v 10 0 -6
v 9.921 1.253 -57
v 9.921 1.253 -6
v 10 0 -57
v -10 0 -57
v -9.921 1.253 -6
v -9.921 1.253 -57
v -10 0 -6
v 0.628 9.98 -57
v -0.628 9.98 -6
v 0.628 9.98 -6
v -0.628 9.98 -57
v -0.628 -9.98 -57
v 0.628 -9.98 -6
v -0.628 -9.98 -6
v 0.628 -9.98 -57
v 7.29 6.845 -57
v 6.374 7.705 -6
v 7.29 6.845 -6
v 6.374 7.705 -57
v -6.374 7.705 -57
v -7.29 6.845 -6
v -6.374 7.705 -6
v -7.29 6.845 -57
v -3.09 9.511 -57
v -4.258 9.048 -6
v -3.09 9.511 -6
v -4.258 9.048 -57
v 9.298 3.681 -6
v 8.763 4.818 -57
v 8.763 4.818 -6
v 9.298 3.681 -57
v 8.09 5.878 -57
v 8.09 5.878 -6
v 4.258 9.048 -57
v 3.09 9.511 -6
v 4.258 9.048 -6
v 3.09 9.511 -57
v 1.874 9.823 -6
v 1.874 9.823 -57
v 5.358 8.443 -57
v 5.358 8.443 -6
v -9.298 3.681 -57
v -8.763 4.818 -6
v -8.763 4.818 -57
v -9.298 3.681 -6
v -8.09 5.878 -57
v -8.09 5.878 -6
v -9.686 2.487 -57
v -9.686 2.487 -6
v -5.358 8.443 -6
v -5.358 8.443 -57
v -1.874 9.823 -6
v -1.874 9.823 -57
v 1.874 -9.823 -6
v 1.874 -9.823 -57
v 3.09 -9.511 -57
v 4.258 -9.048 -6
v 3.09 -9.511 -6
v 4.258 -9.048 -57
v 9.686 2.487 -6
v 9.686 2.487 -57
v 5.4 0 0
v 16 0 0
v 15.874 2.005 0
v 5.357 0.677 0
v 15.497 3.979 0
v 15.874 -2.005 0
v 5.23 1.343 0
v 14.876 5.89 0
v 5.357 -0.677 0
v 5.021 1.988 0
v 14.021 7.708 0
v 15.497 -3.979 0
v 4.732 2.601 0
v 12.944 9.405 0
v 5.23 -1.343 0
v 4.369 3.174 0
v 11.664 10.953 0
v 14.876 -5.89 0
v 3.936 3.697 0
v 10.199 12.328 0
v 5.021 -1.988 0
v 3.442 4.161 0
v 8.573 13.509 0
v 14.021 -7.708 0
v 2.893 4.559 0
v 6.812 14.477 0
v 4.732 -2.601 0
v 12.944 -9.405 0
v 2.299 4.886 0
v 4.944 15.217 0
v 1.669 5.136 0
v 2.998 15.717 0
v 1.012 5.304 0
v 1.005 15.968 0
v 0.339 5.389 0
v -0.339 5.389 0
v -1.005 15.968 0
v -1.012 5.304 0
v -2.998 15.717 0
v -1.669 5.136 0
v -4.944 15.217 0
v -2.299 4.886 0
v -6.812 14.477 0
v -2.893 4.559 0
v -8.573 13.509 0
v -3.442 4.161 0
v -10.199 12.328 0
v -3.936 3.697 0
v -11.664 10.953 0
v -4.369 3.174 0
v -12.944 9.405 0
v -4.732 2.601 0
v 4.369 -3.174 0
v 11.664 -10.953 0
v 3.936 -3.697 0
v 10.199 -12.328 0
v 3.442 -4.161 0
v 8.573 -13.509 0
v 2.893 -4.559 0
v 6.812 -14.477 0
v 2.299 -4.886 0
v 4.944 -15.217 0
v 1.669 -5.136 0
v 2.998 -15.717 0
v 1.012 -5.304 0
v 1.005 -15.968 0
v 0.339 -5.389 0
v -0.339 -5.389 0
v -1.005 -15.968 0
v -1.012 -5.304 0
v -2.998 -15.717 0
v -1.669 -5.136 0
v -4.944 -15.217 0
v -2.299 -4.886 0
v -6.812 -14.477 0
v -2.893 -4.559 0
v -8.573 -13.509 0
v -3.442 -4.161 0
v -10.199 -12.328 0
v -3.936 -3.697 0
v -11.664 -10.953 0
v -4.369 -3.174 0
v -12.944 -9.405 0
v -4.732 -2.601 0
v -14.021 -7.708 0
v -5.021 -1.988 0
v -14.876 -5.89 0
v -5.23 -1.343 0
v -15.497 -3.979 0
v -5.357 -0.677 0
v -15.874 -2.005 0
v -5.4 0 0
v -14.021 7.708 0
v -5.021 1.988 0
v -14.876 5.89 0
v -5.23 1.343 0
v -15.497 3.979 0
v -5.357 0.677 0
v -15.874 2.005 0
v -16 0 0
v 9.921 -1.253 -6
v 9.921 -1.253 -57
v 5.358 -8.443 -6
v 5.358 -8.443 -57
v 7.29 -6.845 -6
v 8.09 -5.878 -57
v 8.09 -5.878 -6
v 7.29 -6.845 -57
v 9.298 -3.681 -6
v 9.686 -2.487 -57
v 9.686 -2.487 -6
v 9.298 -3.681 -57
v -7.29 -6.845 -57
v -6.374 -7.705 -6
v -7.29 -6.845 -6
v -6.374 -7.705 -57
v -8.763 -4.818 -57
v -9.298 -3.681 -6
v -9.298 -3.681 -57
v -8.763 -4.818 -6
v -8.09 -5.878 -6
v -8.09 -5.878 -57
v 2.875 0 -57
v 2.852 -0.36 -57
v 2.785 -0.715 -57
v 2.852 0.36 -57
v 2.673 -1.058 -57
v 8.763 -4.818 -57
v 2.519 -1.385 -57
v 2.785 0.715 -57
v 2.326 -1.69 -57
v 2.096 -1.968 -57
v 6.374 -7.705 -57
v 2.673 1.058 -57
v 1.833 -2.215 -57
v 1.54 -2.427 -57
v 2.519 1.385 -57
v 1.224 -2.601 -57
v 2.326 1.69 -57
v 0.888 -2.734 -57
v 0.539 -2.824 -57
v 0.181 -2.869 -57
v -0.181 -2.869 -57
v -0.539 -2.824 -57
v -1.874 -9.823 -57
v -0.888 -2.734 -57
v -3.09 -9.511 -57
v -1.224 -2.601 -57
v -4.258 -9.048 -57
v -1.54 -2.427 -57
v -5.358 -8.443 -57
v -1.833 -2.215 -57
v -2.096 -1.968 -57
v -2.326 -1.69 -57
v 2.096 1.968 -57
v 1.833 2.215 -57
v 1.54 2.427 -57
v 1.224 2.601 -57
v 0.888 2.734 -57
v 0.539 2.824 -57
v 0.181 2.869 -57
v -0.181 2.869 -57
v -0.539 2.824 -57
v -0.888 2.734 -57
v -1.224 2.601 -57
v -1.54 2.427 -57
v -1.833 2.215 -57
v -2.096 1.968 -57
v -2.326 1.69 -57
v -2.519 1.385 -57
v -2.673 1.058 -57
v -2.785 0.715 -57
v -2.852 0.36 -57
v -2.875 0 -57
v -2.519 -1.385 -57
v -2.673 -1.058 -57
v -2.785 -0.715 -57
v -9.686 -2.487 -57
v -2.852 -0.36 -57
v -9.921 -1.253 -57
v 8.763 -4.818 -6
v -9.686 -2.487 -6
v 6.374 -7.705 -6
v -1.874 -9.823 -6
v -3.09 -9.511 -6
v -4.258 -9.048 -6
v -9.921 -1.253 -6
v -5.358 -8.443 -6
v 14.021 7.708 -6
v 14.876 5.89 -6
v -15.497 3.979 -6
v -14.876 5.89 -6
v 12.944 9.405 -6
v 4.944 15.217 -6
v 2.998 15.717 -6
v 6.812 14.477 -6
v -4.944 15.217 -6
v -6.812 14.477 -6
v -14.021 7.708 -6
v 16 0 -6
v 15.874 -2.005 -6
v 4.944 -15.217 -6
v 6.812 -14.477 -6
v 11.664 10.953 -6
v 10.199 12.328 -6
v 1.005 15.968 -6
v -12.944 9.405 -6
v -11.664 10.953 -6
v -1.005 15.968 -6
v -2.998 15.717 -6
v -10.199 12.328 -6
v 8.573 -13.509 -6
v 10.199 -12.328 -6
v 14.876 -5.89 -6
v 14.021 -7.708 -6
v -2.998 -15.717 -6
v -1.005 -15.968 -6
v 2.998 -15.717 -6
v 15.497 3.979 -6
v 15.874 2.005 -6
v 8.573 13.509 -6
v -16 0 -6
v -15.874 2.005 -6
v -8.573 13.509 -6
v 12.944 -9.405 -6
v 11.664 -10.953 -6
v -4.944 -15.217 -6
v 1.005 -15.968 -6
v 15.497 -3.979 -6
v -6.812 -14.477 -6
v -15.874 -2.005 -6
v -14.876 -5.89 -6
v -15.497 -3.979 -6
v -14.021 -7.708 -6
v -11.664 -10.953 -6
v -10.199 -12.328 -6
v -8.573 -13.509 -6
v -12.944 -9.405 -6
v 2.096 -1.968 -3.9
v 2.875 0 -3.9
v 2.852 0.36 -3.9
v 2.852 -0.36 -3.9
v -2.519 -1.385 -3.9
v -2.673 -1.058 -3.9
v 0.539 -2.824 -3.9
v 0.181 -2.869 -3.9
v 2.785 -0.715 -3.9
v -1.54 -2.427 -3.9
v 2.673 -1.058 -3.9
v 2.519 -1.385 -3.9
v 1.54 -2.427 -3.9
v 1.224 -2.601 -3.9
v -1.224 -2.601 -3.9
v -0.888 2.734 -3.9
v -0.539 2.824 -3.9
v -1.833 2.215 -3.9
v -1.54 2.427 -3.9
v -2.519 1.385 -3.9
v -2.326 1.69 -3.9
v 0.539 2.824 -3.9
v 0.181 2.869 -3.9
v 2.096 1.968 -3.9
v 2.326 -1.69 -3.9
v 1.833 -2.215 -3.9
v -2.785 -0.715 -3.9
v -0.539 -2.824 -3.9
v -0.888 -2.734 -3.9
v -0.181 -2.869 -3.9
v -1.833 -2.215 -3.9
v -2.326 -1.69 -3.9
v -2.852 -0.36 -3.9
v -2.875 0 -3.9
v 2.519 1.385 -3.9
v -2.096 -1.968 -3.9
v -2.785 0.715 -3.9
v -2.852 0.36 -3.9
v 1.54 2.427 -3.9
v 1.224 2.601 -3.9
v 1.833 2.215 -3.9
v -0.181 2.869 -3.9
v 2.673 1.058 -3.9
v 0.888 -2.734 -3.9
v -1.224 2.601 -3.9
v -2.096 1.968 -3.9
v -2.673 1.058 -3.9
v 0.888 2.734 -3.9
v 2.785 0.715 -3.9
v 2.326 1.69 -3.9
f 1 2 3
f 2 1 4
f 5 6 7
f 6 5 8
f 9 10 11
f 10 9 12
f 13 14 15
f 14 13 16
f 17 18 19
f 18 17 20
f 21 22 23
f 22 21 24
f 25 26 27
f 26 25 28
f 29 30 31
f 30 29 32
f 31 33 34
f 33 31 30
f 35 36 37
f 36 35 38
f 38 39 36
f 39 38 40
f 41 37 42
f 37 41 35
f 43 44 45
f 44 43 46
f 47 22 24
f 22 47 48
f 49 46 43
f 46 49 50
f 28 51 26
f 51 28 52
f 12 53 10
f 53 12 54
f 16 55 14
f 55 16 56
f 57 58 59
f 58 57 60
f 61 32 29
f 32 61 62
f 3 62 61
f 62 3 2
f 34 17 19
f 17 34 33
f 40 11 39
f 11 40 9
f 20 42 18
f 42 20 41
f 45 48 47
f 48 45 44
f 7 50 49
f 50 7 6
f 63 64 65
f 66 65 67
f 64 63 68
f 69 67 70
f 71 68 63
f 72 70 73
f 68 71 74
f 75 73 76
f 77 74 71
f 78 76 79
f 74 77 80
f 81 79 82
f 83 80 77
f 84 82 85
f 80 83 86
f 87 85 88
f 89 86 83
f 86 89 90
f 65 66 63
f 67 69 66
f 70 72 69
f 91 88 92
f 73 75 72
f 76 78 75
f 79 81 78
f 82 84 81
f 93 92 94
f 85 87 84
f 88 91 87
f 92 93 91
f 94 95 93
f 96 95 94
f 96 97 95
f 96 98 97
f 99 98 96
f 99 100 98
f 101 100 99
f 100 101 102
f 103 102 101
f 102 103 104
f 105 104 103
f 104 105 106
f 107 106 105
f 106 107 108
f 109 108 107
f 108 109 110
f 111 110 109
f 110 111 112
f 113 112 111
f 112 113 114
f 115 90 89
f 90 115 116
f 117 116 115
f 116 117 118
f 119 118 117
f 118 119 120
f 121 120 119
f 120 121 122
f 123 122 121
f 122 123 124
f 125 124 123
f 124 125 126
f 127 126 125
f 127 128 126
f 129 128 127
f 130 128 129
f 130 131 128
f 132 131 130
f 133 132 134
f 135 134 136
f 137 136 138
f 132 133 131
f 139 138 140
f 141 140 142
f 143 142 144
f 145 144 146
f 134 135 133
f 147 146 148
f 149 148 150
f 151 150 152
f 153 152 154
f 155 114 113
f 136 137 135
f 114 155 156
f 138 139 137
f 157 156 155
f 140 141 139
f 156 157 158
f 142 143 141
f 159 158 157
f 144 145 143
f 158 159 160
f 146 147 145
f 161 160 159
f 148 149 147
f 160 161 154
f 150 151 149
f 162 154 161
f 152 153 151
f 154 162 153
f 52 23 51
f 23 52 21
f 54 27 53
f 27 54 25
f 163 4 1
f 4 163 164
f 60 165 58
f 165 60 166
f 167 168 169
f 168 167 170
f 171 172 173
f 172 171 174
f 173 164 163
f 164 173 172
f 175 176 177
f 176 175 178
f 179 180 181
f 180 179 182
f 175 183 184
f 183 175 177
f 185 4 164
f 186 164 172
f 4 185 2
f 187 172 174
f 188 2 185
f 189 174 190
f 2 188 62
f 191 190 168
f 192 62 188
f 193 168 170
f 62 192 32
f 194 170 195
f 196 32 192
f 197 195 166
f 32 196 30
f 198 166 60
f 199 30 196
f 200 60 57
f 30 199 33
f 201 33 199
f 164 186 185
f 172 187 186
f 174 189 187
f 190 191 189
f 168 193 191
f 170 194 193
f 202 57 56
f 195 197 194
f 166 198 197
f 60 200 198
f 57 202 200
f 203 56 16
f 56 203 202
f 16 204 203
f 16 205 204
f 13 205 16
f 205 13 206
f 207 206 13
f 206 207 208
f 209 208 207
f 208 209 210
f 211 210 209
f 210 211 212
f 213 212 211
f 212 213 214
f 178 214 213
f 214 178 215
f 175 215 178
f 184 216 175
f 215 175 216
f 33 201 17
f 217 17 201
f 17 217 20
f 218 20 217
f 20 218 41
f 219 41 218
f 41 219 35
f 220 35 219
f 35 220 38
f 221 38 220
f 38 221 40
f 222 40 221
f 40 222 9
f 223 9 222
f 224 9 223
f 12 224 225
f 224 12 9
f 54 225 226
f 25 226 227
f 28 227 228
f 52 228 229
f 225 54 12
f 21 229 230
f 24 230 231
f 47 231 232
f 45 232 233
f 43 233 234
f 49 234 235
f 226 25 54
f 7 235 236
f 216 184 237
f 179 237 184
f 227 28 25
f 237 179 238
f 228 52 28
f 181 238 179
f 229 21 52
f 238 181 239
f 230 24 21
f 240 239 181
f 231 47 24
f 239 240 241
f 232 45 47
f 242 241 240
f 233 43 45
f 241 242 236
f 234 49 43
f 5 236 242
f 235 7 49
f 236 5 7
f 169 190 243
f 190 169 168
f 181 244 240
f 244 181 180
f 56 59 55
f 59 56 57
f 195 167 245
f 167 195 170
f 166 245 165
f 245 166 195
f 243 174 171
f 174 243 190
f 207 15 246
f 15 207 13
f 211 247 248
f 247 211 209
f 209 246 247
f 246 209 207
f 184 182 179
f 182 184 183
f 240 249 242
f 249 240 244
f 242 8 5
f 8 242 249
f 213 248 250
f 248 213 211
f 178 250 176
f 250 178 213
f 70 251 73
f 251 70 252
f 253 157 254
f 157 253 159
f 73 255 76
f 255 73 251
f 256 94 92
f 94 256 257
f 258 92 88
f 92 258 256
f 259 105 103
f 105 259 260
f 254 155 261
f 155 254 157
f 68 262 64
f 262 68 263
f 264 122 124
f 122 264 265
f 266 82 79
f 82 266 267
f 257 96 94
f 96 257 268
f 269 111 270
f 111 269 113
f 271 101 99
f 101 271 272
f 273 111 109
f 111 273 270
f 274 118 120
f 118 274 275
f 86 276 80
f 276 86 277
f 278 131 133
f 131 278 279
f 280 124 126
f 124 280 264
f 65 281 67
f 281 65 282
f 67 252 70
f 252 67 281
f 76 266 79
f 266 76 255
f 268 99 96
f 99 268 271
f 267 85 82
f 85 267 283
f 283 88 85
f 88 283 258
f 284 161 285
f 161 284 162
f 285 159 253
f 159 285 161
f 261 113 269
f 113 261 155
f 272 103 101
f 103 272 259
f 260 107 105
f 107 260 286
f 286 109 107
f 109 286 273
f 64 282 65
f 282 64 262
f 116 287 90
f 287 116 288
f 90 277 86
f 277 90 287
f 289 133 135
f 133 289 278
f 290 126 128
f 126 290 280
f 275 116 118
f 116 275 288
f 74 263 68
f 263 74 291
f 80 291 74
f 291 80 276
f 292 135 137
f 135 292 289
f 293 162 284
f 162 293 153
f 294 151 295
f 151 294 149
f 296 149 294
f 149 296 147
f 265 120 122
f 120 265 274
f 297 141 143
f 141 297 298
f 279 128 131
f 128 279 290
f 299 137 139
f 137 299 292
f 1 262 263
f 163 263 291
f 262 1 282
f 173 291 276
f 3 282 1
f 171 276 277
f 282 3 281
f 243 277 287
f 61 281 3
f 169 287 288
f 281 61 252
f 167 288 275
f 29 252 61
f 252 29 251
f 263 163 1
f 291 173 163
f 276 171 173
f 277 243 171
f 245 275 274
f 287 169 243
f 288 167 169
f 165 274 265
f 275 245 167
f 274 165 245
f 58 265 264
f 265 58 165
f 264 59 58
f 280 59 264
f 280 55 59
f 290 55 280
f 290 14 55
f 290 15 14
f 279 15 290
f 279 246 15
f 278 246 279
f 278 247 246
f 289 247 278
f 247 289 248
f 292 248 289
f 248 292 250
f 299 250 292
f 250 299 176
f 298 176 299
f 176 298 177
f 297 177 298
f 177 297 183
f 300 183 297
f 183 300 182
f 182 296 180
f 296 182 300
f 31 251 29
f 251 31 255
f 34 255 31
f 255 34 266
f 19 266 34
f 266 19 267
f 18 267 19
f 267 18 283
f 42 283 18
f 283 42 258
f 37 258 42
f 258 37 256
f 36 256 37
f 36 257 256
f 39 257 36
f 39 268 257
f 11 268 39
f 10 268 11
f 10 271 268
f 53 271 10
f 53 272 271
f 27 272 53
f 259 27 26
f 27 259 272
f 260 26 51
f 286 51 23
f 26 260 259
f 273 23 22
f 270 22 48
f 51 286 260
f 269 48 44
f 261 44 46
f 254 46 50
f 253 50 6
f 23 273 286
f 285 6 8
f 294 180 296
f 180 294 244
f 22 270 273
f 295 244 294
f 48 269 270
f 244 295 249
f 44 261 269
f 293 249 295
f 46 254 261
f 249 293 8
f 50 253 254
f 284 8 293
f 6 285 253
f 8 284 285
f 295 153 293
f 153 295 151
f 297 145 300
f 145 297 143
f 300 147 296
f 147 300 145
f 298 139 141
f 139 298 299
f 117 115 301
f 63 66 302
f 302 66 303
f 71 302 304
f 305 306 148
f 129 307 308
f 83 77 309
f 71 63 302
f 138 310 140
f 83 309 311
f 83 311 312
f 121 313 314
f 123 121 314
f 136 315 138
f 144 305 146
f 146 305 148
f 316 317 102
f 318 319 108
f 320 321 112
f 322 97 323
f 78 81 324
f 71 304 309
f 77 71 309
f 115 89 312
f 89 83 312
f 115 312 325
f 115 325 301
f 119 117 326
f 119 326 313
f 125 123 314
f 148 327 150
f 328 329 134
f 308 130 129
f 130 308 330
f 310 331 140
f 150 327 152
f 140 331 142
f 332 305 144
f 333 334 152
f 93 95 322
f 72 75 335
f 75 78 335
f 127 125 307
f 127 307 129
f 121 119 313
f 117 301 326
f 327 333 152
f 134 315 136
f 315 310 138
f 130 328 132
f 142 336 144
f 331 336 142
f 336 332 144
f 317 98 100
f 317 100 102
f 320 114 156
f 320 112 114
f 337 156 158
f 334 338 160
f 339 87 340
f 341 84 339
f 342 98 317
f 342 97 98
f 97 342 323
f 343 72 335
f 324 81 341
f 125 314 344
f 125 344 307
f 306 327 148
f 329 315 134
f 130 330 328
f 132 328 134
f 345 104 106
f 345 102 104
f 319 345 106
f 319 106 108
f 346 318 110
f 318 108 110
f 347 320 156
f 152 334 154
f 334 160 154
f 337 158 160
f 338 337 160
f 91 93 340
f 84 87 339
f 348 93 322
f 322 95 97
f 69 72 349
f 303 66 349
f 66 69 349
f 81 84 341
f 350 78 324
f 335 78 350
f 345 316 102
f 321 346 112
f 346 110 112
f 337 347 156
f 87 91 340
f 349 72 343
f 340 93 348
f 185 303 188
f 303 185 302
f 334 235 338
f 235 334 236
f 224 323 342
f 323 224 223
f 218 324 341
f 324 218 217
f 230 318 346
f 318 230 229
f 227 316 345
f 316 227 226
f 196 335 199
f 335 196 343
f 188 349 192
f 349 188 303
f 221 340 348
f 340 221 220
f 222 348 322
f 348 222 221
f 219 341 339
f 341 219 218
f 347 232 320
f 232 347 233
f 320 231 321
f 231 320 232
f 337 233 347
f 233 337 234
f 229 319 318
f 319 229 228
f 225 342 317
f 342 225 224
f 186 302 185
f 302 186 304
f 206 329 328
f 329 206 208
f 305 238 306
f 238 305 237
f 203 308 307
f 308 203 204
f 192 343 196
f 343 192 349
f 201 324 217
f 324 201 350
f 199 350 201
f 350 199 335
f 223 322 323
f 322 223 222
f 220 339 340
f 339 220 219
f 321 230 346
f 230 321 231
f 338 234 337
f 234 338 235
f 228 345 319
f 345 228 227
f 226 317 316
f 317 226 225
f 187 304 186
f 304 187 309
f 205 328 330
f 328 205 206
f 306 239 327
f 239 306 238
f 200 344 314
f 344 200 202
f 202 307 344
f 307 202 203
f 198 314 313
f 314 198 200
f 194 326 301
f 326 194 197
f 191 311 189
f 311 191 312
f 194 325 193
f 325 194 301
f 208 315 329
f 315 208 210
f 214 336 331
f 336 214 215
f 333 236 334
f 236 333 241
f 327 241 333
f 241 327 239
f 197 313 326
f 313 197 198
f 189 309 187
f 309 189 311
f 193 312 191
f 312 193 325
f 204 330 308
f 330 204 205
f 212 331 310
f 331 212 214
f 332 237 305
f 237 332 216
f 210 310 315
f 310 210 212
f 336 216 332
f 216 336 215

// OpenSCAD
$fn = 50;


difference() {
	union() {
		translate(v = [0, 0, -57.0000000000]) {
			cylinder(h = 57, r = 10.0000000000);
		}
		translate(v = [0, 0, -6.0000000000]) {
			cylinder(h = 6, r = 16.0000000000);
		}
	}
	union() {
		translate(v = [0, 0, 0]) {
			rotate(a = [0, 0, 0]) {
				difference() {
					union() {
						#translate(v = [0, 0, -57.0000000000]) {
							cylinder(h = 57, r = 2.6000000000);
						}
						#translate(v = [0, 0, -3.9000000000]) {
							cylinder(h = 3.9000000000, r1 = 2.8750000000, r2 = 5.4000000000);
						}
						#translate(v = [0, 0, -57.0000000000]) {
							cylinder(h = 57, r = 2.8750000000);
						}
						#translate(v = [0, 0, -57.0000000000]) {
							cylinder(h = 57, r = 2.6000000000);
						}
					}
					union();
				}
			}
		}
	}
}
